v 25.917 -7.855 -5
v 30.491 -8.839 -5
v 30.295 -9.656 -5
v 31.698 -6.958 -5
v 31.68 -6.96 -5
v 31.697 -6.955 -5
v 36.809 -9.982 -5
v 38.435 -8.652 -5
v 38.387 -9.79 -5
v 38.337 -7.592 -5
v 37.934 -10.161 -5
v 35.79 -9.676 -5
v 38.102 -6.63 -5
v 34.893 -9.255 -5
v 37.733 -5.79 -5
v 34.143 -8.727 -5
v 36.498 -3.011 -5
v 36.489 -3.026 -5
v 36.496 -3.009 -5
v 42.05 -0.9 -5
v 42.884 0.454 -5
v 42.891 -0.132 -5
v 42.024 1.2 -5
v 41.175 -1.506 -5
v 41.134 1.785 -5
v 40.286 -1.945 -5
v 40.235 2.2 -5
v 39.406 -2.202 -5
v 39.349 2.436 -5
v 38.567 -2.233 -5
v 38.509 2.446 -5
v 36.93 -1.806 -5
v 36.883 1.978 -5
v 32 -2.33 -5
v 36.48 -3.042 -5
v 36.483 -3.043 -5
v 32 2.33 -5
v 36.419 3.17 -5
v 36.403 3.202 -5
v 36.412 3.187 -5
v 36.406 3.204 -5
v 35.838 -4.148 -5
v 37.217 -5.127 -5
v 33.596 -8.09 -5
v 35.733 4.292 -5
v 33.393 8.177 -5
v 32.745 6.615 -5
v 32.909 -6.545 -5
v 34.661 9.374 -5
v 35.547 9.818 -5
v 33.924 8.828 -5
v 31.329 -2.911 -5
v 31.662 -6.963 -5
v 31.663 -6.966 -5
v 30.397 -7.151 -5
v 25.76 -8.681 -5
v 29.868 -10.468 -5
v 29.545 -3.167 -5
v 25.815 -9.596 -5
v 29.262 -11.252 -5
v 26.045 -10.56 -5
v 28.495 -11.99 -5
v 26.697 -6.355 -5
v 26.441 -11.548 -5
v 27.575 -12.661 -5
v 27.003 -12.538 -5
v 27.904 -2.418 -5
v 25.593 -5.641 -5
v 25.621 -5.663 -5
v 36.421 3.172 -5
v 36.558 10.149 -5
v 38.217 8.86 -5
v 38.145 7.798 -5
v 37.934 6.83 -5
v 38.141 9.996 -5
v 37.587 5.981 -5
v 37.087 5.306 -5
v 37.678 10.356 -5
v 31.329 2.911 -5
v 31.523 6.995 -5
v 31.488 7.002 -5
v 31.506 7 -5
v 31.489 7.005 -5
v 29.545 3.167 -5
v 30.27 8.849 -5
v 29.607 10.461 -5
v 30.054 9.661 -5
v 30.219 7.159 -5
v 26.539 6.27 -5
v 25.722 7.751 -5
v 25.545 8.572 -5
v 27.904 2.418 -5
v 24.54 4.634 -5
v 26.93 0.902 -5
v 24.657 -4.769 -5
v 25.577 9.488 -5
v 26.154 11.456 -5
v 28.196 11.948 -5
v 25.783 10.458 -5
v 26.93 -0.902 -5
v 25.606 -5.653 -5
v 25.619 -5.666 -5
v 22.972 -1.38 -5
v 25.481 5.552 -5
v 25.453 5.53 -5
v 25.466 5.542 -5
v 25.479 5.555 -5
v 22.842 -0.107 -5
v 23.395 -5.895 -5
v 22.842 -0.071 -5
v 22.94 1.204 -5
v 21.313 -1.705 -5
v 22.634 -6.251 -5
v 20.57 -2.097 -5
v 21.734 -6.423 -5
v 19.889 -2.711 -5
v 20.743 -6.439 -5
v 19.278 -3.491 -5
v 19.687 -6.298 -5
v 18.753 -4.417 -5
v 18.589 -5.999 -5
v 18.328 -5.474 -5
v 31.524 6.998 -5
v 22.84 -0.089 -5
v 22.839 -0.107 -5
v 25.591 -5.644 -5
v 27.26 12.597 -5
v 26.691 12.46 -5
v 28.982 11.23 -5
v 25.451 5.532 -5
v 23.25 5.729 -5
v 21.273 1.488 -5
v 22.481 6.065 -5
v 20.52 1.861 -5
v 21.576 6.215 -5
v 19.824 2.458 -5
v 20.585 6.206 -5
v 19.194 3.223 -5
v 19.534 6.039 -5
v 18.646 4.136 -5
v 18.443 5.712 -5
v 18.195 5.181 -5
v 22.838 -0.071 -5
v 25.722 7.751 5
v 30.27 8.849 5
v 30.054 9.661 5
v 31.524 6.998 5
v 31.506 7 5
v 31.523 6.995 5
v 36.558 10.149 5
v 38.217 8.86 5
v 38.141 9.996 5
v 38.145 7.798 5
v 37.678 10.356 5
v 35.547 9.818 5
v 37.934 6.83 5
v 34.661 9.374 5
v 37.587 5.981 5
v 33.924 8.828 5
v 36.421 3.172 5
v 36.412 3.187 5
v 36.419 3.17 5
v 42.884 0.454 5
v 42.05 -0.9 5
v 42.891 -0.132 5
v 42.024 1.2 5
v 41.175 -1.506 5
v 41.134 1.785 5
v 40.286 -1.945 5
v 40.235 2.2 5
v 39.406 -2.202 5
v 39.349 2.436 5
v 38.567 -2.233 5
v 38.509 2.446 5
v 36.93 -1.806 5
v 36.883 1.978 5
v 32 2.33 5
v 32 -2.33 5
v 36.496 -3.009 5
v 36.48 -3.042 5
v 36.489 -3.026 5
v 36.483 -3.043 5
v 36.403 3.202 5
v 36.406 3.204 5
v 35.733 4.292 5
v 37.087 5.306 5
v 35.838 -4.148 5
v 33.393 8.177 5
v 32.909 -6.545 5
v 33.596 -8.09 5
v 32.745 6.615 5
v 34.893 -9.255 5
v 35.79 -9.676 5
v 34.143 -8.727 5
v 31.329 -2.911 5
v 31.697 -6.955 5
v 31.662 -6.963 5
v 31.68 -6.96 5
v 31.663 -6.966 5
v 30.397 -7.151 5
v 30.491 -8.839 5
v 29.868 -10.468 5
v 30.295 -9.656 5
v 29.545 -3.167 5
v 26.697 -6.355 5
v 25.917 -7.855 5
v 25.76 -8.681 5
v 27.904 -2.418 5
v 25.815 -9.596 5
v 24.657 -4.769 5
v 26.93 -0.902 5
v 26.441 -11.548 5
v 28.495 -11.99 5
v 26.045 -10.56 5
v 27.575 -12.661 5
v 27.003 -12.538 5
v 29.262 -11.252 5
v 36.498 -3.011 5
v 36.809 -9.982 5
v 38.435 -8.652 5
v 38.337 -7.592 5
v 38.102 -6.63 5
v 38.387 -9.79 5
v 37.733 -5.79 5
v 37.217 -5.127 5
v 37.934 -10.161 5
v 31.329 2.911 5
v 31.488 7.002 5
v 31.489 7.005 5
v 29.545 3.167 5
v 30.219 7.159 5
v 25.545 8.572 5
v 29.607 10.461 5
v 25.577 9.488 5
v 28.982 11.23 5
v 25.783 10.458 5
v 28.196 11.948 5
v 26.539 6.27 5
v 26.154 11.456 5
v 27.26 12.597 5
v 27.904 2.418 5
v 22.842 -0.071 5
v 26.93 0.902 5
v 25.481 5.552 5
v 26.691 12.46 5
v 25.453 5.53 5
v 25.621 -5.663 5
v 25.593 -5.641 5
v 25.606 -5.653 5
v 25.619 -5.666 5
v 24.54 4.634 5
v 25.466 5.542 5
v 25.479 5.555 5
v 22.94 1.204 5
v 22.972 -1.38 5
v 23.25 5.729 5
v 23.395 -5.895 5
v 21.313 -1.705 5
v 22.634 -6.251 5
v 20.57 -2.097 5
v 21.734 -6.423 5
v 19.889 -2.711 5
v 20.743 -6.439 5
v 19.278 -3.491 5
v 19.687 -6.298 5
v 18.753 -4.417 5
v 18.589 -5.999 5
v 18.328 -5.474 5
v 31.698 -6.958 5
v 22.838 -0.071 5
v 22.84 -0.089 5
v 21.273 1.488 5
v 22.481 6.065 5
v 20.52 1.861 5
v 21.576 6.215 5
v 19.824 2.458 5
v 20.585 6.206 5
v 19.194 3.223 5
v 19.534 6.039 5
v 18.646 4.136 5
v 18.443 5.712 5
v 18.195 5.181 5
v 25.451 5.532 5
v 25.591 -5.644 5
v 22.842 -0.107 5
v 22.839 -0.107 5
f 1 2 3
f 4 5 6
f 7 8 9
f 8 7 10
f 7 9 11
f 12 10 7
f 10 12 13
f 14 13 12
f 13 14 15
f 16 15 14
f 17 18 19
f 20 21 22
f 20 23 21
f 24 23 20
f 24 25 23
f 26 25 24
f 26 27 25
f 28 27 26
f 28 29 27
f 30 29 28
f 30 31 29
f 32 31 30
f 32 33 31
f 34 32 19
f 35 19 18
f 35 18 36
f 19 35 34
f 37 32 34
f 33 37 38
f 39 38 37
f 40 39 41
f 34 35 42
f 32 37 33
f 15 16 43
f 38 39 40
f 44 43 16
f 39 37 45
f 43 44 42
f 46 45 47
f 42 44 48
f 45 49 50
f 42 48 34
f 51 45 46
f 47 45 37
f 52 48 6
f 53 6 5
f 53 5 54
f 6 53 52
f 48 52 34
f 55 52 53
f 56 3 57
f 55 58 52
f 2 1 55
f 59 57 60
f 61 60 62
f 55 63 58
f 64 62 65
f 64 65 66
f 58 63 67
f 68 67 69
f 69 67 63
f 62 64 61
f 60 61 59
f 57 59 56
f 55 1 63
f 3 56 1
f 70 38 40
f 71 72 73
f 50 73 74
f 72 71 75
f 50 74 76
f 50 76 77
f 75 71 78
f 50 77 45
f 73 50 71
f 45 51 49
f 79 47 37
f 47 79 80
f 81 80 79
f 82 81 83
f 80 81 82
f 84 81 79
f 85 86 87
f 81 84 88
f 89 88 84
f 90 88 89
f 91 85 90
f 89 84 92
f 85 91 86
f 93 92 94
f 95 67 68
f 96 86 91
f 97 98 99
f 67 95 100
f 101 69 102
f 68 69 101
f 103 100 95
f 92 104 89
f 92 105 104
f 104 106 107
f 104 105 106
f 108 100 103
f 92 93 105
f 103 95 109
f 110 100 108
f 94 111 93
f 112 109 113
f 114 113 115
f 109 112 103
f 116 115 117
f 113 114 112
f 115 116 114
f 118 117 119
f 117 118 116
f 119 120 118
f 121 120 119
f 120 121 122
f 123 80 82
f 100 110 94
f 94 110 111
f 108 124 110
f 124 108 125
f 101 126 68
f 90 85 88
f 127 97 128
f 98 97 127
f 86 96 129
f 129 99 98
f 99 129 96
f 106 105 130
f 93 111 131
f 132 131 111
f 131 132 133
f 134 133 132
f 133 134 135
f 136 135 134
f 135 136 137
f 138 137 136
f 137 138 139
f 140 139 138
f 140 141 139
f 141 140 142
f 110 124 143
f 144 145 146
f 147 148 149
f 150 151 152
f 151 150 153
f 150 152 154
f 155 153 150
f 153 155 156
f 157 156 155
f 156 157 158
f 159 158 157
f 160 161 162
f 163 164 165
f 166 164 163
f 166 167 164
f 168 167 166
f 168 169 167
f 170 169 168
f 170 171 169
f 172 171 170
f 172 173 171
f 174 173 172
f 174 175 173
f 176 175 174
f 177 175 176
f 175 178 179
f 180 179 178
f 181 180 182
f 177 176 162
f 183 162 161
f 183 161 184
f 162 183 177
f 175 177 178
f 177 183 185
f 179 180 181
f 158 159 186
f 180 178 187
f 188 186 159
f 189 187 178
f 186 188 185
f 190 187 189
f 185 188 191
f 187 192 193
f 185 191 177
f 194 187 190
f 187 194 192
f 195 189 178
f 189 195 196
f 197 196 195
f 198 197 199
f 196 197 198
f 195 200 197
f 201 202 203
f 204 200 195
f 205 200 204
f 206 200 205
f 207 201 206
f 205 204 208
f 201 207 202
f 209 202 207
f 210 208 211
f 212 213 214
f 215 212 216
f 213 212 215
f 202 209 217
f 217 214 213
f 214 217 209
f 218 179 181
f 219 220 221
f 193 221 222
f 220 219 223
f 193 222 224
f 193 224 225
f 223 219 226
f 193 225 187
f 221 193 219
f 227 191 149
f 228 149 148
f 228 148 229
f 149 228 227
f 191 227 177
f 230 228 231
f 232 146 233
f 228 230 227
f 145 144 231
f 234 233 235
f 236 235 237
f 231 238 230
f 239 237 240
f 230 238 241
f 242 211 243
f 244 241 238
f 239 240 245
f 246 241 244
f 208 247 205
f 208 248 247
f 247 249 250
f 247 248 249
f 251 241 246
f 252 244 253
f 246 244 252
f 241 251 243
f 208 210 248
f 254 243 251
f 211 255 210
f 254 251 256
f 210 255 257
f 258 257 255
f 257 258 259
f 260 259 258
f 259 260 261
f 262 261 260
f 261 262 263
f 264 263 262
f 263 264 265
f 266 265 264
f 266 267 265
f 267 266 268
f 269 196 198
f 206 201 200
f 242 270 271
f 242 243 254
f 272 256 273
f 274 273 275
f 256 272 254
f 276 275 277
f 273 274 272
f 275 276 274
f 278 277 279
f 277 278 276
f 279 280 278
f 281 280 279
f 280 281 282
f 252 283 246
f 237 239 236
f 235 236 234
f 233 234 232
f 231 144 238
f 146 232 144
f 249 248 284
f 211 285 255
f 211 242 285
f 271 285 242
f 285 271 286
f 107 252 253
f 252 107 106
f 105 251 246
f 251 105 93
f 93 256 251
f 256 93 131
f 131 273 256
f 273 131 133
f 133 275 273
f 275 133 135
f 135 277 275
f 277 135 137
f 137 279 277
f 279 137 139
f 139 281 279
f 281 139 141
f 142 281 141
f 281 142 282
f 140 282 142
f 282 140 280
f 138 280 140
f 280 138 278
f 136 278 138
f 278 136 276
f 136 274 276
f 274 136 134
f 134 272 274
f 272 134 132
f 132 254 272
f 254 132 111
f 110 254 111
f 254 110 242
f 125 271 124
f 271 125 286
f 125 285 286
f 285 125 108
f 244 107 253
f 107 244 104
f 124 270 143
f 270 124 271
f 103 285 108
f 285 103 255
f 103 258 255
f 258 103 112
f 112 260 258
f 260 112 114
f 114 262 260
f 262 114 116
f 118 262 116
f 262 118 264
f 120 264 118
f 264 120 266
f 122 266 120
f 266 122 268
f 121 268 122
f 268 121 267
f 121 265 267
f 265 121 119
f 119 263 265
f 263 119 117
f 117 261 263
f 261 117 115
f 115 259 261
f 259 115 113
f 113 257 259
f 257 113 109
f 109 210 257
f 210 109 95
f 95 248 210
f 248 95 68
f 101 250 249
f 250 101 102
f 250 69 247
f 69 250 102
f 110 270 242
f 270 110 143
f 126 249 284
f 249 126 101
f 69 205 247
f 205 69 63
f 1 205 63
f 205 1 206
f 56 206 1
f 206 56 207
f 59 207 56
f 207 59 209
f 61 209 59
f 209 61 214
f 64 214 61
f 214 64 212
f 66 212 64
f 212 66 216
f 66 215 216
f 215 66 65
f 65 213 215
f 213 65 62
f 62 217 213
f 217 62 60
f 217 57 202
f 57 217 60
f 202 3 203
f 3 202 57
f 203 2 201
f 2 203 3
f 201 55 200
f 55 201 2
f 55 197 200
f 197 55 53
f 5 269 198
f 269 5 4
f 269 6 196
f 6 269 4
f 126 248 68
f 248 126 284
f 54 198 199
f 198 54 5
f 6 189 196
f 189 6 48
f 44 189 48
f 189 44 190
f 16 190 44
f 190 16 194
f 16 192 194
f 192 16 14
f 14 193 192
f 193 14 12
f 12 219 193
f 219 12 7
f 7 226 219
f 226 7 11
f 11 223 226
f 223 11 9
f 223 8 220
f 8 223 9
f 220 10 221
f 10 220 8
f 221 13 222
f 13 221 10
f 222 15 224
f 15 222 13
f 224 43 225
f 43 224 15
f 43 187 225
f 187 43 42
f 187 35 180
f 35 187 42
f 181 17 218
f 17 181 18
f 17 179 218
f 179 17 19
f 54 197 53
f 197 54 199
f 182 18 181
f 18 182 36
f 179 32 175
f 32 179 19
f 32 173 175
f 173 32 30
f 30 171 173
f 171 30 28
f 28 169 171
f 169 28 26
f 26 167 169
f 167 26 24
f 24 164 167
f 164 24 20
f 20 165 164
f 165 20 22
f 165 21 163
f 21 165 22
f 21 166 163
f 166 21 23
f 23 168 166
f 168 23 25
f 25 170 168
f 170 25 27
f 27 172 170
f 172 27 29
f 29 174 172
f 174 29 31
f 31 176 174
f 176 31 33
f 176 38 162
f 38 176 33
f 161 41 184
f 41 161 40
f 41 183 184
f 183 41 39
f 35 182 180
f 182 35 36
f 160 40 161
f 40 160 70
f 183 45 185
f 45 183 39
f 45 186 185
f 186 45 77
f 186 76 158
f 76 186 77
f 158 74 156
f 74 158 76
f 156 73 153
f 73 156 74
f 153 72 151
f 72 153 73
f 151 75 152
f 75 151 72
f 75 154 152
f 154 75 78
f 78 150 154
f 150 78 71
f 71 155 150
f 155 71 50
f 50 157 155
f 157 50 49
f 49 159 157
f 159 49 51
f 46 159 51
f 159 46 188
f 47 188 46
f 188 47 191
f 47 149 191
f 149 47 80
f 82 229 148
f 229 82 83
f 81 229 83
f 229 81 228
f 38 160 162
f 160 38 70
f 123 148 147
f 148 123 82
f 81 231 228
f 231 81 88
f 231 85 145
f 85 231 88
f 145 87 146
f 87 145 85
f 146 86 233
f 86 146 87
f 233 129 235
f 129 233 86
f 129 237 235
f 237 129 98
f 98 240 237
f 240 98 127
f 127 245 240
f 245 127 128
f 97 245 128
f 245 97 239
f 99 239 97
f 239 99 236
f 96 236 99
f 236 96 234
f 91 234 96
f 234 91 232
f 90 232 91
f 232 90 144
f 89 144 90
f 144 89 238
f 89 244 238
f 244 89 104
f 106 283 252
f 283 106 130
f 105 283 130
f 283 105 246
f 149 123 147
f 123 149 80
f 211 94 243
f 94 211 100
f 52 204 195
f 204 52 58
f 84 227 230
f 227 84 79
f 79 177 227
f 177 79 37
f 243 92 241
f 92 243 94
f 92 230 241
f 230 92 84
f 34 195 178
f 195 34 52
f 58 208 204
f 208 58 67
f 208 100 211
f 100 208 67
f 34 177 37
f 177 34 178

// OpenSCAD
include<gear.scad>

// Inner Gear
translate([30, 0, 0])
difference()
{
    // inner gear
    rotate([0,0,65]) color([0.75,0.75,1.00]) gear(mm_per_tooth,7,thickness,2);
    
    // hole for rotary encoder radius 7 and width 5 before flat part
    difference()
    {
        cylinder(h=10,r=3.2,center=true); 
        translate([3,0,0])cube([2,7,10], center=true);
    }
}
